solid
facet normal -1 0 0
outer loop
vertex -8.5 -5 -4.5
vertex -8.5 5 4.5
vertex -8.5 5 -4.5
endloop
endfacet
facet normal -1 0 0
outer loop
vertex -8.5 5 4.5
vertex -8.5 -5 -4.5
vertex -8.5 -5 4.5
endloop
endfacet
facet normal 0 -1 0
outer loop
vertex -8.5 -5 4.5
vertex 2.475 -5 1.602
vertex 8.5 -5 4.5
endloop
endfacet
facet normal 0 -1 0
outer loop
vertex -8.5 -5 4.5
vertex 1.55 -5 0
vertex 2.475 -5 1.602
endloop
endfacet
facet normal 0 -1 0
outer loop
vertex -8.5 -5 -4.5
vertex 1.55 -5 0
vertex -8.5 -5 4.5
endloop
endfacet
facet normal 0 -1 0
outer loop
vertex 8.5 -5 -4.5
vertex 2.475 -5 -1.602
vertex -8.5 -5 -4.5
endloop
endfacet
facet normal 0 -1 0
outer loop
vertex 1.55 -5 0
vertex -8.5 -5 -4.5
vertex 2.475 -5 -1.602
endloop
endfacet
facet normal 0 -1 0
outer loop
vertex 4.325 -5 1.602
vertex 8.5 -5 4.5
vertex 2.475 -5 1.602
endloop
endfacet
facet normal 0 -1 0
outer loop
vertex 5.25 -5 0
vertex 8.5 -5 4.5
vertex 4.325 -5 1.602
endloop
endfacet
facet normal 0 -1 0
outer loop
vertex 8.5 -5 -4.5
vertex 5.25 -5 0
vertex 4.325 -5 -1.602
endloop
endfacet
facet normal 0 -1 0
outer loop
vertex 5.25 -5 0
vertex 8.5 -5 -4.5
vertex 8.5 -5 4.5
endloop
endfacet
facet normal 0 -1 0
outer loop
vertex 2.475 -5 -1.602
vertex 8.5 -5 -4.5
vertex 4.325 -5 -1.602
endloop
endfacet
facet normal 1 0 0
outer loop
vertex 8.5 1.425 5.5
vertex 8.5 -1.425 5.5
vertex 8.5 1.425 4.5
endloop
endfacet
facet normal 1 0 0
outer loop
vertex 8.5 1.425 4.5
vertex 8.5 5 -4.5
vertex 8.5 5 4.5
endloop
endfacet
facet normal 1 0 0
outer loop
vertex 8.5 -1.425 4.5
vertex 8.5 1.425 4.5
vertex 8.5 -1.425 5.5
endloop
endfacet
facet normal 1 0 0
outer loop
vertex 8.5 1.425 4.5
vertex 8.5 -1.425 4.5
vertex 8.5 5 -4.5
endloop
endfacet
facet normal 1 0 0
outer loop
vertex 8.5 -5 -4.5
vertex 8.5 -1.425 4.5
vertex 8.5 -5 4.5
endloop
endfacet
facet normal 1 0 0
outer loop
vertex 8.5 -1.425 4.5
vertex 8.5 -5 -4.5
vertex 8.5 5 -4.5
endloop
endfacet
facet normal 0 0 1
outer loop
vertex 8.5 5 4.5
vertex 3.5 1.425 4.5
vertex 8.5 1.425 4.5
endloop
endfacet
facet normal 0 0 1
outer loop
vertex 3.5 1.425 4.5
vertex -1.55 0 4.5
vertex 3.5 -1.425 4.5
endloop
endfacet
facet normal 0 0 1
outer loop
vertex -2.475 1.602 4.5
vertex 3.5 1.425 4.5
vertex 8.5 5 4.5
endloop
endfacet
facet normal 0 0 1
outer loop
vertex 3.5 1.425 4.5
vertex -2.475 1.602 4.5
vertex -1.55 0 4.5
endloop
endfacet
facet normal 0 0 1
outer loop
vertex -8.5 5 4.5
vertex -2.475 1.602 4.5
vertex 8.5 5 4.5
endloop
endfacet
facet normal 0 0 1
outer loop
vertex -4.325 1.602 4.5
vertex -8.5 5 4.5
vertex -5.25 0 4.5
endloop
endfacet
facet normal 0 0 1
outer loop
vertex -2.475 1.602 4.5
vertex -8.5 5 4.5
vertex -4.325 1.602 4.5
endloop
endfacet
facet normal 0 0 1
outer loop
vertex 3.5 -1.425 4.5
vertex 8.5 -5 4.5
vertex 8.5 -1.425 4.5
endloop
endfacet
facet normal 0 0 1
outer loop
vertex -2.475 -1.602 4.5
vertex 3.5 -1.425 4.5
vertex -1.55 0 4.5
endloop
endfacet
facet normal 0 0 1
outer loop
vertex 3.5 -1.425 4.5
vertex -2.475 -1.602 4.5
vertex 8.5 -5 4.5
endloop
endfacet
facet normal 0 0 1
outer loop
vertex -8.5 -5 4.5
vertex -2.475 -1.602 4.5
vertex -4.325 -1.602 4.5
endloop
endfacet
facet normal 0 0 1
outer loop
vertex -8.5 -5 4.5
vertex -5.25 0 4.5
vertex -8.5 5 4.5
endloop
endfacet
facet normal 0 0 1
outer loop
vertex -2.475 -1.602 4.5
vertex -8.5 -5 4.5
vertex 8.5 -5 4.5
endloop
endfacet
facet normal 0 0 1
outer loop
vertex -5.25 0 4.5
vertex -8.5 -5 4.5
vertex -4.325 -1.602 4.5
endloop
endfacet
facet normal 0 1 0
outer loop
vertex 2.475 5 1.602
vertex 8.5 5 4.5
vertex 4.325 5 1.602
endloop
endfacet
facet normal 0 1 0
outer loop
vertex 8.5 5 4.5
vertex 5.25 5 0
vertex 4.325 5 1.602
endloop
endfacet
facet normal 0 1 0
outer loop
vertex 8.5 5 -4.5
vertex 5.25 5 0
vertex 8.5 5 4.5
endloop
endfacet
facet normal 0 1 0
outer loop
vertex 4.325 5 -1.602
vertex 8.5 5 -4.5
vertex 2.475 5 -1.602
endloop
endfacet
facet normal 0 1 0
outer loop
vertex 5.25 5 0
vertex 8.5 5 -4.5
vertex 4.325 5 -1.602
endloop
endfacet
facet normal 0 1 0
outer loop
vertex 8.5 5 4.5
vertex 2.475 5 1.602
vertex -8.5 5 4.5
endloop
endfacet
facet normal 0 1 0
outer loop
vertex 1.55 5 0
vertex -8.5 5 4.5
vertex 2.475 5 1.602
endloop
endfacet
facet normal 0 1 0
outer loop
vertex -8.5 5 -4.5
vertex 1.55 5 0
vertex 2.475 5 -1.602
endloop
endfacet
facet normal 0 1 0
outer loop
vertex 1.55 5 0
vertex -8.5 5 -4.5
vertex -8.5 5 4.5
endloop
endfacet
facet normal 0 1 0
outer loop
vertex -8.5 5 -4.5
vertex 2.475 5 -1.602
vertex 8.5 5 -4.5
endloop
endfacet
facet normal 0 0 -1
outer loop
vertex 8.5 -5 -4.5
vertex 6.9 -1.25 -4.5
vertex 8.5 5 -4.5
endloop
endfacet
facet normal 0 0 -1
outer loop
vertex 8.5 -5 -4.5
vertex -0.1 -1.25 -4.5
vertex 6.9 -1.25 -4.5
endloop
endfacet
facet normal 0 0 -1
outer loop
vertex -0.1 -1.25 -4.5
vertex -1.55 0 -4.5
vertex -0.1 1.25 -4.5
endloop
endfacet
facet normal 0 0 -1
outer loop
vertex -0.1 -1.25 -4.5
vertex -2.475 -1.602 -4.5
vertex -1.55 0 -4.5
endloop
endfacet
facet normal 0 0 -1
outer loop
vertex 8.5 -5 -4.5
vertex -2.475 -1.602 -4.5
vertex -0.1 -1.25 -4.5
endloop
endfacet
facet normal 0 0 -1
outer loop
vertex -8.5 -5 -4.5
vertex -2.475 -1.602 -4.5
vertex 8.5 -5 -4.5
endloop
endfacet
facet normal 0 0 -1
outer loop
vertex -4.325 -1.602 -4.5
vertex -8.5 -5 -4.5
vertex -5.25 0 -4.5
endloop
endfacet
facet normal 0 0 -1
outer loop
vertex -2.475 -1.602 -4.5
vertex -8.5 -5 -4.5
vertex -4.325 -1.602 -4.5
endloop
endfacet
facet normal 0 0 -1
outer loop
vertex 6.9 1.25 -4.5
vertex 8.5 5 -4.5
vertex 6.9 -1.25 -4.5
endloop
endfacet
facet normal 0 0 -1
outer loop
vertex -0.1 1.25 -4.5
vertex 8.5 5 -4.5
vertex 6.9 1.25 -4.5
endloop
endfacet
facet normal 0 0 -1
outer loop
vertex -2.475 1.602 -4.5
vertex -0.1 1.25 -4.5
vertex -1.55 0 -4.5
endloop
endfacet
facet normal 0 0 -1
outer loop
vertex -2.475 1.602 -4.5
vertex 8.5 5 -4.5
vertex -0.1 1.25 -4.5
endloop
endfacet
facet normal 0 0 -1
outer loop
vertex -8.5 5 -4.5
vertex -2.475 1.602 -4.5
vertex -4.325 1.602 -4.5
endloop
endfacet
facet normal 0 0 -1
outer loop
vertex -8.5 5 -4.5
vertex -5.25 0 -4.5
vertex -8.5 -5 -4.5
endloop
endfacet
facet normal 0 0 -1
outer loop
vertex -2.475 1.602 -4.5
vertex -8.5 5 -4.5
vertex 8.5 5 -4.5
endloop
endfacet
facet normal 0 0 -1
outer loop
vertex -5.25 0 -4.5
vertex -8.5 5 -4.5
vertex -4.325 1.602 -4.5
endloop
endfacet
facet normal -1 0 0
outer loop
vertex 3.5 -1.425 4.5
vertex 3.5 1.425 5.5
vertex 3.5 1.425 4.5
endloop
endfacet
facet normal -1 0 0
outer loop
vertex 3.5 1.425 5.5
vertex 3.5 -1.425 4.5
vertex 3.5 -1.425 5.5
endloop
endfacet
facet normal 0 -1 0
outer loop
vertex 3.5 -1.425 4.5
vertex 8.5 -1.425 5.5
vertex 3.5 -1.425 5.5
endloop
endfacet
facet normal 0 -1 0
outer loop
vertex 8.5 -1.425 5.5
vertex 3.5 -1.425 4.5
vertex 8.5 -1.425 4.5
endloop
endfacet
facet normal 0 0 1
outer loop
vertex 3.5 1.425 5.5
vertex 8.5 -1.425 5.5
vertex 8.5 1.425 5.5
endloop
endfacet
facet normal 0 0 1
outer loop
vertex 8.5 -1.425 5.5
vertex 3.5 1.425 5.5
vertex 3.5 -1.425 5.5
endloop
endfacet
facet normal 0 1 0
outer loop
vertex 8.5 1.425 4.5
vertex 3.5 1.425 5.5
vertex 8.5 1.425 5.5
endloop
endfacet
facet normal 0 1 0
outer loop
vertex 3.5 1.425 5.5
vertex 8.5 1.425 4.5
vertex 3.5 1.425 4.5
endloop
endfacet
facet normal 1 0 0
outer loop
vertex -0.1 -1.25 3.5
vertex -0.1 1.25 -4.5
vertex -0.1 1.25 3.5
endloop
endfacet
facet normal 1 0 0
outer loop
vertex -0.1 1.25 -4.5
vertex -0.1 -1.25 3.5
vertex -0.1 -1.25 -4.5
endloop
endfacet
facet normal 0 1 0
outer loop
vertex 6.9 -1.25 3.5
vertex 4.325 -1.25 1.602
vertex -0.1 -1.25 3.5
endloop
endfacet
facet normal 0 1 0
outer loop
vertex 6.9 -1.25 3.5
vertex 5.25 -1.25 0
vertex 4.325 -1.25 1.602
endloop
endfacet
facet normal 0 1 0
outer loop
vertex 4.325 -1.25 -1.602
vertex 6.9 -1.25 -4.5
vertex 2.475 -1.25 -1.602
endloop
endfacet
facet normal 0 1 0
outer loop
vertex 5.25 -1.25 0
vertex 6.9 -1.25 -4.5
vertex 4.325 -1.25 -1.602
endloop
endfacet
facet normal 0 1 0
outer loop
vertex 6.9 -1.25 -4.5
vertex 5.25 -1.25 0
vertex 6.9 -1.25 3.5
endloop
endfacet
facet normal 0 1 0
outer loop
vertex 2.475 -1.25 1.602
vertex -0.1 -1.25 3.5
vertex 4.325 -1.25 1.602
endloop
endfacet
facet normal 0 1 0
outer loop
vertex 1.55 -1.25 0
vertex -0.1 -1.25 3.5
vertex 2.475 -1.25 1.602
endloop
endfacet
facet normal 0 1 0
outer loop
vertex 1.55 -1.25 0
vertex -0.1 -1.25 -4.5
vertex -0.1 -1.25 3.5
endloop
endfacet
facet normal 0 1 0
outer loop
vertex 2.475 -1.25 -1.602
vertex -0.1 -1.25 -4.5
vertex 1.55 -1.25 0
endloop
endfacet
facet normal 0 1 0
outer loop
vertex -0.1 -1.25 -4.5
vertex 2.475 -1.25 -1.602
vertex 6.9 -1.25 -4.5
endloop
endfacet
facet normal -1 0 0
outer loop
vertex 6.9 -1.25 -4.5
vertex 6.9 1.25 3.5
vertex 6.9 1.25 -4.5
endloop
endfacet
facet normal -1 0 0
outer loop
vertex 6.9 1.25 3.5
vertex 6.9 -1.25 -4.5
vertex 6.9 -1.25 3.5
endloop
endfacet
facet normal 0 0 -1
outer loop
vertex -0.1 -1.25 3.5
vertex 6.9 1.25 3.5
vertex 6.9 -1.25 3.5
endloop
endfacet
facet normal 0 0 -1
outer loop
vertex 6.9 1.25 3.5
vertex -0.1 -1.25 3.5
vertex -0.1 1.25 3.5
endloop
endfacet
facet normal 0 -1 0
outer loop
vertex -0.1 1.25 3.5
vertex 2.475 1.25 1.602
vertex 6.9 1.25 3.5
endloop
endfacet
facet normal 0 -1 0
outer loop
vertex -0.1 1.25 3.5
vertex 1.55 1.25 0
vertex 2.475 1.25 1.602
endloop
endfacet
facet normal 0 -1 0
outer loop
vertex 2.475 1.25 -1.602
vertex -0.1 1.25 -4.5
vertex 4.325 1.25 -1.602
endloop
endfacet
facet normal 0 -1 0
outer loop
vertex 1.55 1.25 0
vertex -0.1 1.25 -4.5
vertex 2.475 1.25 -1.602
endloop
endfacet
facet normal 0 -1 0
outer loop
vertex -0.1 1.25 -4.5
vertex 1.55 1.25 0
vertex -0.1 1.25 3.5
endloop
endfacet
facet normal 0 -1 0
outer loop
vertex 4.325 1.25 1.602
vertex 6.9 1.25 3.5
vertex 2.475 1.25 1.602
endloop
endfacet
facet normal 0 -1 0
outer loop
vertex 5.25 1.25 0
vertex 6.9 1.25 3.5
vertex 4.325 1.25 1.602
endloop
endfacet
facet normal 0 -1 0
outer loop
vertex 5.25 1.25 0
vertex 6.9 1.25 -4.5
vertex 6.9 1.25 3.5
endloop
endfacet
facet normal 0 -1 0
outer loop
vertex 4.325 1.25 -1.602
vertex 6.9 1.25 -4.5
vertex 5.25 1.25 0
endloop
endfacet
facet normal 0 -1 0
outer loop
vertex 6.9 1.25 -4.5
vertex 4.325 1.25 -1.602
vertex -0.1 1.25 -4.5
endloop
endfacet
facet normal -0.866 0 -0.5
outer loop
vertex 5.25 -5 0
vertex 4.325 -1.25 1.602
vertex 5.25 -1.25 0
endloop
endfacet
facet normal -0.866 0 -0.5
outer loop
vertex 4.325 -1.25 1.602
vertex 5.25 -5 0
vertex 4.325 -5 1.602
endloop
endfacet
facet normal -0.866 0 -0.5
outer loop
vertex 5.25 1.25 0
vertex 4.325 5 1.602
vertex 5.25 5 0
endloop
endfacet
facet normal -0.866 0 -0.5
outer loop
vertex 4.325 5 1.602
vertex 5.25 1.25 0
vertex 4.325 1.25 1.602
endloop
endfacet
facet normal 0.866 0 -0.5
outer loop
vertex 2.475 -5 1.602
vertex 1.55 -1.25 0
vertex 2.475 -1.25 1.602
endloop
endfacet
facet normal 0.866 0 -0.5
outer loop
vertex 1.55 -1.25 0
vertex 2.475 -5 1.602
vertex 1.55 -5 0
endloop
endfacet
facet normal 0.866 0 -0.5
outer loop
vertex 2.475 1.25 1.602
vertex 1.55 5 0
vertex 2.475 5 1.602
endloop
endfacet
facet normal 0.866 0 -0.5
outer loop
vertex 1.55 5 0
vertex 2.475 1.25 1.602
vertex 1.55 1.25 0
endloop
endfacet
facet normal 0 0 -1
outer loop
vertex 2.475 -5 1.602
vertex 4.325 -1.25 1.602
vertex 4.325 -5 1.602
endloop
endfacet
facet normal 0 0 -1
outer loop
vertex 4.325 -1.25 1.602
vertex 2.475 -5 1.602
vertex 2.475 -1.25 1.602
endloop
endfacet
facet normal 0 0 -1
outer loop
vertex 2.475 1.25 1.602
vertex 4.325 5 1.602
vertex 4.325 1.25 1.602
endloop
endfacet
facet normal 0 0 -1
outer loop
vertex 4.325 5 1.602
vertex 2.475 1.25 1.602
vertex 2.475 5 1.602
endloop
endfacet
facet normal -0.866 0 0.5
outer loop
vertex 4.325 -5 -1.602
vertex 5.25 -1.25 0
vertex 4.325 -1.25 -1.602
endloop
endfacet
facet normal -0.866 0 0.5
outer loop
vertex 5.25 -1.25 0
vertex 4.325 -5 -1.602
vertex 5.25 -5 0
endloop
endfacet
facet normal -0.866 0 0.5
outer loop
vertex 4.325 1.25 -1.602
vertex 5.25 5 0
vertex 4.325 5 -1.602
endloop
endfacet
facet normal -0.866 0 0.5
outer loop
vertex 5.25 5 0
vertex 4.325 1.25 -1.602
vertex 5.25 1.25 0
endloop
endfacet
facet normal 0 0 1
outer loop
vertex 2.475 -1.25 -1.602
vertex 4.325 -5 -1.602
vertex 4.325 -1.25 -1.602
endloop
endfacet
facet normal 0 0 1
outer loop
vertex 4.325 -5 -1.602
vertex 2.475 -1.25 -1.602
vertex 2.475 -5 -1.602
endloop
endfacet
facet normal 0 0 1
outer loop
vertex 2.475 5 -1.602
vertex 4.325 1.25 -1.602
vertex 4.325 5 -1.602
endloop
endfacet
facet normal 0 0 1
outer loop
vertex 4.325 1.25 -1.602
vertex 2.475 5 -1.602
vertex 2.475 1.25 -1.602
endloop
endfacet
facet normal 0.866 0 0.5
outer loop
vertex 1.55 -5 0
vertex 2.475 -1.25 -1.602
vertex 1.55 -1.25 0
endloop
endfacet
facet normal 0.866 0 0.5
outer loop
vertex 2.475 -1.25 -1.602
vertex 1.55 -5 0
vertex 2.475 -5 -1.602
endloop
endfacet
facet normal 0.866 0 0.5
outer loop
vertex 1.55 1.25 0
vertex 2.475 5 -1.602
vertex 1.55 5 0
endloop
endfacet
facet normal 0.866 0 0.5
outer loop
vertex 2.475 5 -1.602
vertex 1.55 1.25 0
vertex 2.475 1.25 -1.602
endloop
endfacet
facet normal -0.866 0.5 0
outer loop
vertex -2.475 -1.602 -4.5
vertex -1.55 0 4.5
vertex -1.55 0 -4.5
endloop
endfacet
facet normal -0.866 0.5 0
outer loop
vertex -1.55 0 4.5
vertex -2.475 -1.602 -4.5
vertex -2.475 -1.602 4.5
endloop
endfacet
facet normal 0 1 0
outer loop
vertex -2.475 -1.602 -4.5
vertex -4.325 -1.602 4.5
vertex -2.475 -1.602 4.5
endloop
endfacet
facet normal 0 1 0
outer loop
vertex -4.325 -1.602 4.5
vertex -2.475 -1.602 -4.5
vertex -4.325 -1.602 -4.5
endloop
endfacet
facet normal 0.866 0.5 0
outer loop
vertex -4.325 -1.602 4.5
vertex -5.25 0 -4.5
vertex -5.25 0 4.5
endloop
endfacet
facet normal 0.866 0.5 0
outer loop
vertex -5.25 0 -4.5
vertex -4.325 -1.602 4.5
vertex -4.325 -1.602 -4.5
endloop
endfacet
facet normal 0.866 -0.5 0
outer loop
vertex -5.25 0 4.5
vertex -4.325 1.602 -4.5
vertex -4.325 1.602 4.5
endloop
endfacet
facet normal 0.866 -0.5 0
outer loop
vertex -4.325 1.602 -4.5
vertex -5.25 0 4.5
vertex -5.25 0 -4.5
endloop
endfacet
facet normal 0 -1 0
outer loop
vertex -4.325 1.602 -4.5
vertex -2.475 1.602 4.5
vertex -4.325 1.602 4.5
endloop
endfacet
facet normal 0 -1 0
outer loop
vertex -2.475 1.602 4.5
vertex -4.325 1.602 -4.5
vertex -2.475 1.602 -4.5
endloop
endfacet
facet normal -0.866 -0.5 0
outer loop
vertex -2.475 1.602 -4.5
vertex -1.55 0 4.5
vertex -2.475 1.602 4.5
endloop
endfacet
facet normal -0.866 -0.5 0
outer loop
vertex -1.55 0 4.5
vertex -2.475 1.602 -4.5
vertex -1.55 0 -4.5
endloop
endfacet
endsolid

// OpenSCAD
mm=1;
in=25.4*mm;
slop=0.15;
eps=0.01;

holder_length = 17*mm;
holder_th = 9*mm;
beam_width = 10*mm;
beam_slot_width=3*mm;
tab_len = 5*mm;
tab_depth=2*mm;

screw_rad=1.7*mm;

$fn=6;

shift=holder_length*0.2;

nut_width = 7*mm;
nut_th=2.5*mm;

rotate([90,0,0])
difference(){
    union(){
        cube([holder_length, holder_th, beam_width], center=true);
        translate([holder_length/2-tab_len/2,holder_th/2,0])
        cube([tab_len, tab_depth,  beam_slot_width-slop],center=true);
    }
    color("red")
    union(){
        translate([shift,-holder_th/2,0])
        cube([nut_width,holder_th+nut_width,nut_th],center=true);
        translate([shift,0,0])
        cylinder(r=screw_rad+slop,h=1*in,center=true);
        translate([-shift,0,0])
        rotate([90,0,0])
        cylinder(r=screw_rad+slop,h=1*in,center=true);
        
    }
}
